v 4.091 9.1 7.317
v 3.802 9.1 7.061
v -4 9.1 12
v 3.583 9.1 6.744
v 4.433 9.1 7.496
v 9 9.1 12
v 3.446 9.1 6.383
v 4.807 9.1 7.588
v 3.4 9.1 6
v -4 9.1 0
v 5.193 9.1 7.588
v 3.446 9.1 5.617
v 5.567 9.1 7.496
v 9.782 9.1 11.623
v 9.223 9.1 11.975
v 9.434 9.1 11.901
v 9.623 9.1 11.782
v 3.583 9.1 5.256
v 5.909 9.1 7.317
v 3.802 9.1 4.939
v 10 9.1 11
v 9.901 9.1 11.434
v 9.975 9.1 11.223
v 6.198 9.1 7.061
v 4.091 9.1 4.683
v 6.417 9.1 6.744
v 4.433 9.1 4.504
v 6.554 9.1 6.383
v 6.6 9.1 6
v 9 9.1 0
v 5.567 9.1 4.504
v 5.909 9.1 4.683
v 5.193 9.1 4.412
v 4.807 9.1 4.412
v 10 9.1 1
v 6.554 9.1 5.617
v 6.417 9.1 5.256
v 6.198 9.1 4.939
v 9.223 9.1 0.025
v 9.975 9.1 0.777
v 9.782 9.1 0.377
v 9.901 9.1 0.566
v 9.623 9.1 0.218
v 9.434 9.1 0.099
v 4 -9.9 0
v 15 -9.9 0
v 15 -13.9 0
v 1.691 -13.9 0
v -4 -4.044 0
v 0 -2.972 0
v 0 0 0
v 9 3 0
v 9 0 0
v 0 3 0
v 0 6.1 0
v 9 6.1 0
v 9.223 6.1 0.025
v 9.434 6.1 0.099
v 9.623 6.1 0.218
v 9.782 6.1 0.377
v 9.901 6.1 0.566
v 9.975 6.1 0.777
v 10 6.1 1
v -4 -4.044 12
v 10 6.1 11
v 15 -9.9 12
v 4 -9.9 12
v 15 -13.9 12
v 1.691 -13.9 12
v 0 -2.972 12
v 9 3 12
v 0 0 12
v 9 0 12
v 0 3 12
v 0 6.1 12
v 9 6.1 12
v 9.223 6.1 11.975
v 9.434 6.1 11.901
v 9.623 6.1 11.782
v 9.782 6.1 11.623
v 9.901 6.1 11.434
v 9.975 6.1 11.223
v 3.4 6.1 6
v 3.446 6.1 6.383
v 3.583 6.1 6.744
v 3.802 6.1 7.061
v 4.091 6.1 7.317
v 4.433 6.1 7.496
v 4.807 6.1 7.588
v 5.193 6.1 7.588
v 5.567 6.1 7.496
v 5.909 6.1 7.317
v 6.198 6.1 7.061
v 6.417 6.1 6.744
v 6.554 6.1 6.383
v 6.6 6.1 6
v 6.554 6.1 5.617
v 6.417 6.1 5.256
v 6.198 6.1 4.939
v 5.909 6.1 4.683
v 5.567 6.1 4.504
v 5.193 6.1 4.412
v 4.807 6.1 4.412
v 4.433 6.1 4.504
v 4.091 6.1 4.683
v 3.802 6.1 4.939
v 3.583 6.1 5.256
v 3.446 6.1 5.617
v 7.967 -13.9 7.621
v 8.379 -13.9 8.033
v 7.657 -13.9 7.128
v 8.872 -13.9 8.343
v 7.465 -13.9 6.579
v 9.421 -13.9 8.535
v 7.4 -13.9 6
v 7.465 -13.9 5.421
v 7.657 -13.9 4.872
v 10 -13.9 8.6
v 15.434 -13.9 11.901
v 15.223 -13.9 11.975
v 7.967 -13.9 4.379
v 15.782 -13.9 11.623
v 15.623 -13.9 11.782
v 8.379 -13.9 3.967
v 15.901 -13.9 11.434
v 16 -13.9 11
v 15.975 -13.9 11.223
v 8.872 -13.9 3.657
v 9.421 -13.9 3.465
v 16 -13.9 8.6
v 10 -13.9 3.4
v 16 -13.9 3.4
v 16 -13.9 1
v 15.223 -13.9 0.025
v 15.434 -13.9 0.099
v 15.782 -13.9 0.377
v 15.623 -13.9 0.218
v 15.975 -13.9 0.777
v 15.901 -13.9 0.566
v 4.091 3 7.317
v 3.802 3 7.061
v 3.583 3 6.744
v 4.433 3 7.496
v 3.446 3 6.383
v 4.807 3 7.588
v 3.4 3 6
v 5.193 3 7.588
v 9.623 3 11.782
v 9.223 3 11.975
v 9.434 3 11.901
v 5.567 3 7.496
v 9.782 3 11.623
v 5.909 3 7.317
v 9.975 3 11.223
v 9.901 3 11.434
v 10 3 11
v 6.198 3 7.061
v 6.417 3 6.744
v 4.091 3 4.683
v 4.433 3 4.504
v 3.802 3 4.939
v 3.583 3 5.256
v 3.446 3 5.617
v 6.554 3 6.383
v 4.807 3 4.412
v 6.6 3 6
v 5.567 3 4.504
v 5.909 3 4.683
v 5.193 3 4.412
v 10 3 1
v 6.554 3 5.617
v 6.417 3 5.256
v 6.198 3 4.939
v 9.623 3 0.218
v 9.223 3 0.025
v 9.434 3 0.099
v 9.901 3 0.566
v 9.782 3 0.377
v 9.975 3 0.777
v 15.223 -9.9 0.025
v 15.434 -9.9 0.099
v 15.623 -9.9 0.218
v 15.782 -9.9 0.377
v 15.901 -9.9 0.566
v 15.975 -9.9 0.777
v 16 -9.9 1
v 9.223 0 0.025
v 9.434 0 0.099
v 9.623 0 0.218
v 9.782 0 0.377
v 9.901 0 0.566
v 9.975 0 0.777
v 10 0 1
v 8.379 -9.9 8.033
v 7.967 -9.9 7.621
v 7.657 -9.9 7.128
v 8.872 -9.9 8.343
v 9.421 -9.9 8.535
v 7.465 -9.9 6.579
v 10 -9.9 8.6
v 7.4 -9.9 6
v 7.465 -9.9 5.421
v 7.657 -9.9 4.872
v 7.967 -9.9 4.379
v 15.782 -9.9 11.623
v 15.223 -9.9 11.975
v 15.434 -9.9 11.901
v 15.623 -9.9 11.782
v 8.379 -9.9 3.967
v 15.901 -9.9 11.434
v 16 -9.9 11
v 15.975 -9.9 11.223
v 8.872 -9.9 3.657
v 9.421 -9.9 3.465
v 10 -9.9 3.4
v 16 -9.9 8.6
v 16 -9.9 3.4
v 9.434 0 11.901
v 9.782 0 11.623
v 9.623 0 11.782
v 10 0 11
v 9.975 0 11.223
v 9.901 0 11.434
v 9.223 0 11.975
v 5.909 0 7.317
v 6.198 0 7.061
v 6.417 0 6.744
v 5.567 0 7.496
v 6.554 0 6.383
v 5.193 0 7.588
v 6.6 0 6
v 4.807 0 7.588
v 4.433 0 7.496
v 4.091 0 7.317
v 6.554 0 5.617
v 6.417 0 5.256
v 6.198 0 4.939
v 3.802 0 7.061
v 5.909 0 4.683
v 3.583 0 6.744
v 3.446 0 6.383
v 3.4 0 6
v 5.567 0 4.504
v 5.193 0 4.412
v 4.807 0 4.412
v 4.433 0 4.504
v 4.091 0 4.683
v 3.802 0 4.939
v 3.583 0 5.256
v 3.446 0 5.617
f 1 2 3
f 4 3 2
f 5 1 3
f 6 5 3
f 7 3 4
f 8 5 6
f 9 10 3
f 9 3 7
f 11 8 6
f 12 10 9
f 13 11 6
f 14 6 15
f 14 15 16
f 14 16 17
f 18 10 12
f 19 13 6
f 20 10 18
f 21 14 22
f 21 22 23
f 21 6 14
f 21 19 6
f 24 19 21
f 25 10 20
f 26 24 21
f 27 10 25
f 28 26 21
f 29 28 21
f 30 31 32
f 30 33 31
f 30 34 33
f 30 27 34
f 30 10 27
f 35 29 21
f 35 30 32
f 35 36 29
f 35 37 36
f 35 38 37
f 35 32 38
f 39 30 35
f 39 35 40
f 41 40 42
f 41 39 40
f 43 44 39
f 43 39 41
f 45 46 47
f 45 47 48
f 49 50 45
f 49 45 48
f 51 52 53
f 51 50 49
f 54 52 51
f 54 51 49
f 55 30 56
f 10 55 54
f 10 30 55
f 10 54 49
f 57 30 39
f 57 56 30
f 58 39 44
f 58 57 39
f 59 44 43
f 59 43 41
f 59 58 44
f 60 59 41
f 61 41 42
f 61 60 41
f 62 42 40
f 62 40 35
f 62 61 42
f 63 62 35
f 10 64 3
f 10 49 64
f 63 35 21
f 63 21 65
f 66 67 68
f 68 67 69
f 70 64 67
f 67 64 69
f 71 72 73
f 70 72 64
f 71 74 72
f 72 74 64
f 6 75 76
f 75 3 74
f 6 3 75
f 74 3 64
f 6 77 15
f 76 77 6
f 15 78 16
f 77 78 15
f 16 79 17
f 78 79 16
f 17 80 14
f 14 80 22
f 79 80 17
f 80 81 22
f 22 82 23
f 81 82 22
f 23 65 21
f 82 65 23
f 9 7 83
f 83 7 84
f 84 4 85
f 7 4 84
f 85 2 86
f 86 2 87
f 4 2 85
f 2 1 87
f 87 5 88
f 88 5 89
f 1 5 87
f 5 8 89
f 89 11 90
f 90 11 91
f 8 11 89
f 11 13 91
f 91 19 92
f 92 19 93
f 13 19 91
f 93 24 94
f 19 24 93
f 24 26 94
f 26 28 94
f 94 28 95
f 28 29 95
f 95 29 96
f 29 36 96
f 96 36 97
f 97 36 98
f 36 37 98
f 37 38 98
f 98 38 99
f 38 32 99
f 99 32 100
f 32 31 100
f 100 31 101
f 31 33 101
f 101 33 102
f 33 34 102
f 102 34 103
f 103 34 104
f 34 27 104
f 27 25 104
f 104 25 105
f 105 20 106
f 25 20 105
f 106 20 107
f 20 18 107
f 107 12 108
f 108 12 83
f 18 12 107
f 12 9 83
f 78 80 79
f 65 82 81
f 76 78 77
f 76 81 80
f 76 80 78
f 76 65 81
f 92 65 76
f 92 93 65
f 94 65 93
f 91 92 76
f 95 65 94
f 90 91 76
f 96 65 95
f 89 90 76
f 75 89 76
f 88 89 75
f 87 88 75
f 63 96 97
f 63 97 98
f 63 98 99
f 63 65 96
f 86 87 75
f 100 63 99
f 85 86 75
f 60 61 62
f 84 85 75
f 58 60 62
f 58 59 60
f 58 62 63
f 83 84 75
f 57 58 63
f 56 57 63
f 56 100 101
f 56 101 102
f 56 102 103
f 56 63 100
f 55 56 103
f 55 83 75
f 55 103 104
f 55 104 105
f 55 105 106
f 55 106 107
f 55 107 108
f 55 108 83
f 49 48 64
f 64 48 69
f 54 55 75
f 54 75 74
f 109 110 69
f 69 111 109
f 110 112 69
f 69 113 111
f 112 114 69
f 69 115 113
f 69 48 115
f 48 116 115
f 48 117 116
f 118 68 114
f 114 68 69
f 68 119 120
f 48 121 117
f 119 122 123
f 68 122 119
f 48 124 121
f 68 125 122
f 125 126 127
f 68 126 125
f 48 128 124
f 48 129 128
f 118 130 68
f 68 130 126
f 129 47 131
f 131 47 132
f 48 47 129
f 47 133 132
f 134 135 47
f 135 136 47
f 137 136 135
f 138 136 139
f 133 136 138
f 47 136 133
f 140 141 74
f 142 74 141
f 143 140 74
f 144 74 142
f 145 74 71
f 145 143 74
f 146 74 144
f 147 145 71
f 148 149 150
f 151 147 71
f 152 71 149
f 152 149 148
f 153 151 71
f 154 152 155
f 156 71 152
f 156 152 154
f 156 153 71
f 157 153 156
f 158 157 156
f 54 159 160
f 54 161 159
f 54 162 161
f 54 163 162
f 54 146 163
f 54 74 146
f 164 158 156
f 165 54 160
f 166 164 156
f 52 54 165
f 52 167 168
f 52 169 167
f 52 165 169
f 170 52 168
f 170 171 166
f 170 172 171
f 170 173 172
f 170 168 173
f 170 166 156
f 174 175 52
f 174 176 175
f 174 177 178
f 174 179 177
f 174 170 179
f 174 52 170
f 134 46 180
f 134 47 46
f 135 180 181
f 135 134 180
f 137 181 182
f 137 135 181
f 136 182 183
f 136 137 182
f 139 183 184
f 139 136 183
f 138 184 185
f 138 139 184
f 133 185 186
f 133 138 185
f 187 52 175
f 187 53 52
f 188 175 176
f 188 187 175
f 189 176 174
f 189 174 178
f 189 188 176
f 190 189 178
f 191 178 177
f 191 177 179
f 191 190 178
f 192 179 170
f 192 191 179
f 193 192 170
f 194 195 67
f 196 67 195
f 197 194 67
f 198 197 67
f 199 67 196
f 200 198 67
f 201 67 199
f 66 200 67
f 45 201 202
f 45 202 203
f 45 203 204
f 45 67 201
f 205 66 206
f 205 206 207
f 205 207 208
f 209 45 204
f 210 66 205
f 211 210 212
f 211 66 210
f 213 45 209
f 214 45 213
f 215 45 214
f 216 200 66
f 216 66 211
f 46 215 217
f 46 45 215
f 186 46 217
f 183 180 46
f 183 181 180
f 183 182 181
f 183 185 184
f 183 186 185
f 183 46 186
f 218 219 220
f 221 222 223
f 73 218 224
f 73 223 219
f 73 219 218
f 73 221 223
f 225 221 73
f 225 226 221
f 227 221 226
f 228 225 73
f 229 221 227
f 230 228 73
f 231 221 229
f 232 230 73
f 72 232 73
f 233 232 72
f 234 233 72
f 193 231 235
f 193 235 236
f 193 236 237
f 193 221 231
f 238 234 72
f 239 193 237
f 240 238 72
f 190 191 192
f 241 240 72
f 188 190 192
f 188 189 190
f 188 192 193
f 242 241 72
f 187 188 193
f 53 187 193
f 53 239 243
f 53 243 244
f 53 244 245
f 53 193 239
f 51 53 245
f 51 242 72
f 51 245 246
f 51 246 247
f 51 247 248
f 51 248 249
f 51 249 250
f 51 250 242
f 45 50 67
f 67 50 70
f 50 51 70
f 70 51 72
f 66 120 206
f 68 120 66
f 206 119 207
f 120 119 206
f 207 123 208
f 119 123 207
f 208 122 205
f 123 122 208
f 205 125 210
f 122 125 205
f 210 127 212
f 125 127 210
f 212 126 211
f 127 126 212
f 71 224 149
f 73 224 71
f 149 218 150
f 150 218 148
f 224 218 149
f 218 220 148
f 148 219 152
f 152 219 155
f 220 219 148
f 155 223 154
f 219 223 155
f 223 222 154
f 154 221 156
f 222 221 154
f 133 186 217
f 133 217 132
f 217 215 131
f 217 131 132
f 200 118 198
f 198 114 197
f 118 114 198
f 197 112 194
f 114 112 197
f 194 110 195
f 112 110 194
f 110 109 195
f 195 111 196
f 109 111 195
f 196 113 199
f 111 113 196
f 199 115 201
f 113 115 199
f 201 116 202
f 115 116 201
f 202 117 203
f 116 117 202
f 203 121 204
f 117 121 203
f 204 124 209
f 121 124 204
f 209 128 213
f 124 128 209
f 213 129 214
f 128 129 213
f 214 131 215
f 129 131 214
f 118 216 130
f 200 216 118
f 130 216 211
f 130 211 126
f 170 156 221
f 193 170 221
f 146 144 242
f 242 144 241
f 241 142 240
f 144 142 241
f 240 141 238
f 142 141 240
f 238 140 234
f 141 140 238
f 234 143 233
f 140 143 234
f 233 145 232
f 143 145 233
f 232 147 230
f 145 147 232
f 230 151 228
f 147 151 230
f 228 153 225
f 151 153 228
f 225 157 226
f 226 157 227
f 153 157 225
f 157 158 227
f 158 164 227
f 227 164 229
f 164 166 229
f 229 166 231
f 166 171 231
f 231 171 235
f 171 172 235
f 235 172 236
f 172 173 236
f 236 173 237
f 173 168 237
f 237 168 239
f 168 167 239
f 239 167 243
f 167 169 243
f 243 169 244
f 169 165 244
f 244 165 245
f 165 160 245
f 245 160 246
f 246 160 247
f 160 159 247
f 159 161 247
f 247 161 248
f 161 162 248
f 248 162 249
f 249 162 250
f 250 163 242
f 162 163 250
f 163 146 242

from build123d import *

# Parameters (mm, degrees)
PAD_DEPTH       = 12
SKETCH001_R     = 2.6
POCKET_DEPTH    = 4
SKETCH002_R     = 1.6
POCKET001_DEPTH = 10
FILLET_R        = 1
SKETCH003_W     = 8
SKETCH003_H     = 5.2
POCKET002_DEPTH = 5


with BuildPart() as part:
    # Sketch → Pad (new body)
    with BuildSketch(Plane.XY):
        Polygon((-4, 9.1), (10, 9.1), (10, 6.1), (0, 6.1), (0, 3), (10, 3), (10, 0), (0, 0), (0, -2.971797), (4, -9.9), (16, -9.9), (16, -13.9), (1.690599, -13.9), (-4, -4.043594), align=None)
    extrude(amount=PAD_DEPTH)

    # Sketch001 (on Face13 of Pad) → Pocket (cut)
    with BuildSketch(Plane.XZ.offset(13.9)):
        with Locations((10, 6)):
            Circle(SKETCH001_R)
    extrude(amount=-POCKET_DEPTH, mode=Mode.SUBTRACT)

    # Sketch002 (on Face2 of Pocket) → Pocket001 (cut)
    with BuildSketch(Plane(origin=(0, 9.1, 0), x_dir=(-1, 0, 0), z_dir=(0, 1, 0))):
        with Locations((-5, 6)):
            Circle(SKETCH002_R)
    extrude(amount=-POCKET001_DEPTH, mode=Mode.SUBTRACT)

    # Fillet
    fillet_edges = [part.edges().sort_by_distance(p)[0] for p in [
        (10, 1.5, 12),
        (10, 7.6, 12),
        (10, 7.6, 0),
        (10, 1.5, 0),
        (16, -11.9, 12),
        (16, -11.9, 0),
    ]]
    fillet(fillet_edges, radius=FILLET_R)

    # Sketch003 (on Face16 of Fillet) → Pocket002 (cut)
    with BuildSketch(Plane(origin=(0, -9.9, 0), x_dir=(-1, 0, 0), z_dir=(0, 1, 0))):
        with Locations((-14, 6)):
            Rectangle(SKETCH003_W, SKETCH003_H)
    extrude(amount=-POCKET002_DEPTH, mode=Mode.SUBTRACT)


solid = part.part
